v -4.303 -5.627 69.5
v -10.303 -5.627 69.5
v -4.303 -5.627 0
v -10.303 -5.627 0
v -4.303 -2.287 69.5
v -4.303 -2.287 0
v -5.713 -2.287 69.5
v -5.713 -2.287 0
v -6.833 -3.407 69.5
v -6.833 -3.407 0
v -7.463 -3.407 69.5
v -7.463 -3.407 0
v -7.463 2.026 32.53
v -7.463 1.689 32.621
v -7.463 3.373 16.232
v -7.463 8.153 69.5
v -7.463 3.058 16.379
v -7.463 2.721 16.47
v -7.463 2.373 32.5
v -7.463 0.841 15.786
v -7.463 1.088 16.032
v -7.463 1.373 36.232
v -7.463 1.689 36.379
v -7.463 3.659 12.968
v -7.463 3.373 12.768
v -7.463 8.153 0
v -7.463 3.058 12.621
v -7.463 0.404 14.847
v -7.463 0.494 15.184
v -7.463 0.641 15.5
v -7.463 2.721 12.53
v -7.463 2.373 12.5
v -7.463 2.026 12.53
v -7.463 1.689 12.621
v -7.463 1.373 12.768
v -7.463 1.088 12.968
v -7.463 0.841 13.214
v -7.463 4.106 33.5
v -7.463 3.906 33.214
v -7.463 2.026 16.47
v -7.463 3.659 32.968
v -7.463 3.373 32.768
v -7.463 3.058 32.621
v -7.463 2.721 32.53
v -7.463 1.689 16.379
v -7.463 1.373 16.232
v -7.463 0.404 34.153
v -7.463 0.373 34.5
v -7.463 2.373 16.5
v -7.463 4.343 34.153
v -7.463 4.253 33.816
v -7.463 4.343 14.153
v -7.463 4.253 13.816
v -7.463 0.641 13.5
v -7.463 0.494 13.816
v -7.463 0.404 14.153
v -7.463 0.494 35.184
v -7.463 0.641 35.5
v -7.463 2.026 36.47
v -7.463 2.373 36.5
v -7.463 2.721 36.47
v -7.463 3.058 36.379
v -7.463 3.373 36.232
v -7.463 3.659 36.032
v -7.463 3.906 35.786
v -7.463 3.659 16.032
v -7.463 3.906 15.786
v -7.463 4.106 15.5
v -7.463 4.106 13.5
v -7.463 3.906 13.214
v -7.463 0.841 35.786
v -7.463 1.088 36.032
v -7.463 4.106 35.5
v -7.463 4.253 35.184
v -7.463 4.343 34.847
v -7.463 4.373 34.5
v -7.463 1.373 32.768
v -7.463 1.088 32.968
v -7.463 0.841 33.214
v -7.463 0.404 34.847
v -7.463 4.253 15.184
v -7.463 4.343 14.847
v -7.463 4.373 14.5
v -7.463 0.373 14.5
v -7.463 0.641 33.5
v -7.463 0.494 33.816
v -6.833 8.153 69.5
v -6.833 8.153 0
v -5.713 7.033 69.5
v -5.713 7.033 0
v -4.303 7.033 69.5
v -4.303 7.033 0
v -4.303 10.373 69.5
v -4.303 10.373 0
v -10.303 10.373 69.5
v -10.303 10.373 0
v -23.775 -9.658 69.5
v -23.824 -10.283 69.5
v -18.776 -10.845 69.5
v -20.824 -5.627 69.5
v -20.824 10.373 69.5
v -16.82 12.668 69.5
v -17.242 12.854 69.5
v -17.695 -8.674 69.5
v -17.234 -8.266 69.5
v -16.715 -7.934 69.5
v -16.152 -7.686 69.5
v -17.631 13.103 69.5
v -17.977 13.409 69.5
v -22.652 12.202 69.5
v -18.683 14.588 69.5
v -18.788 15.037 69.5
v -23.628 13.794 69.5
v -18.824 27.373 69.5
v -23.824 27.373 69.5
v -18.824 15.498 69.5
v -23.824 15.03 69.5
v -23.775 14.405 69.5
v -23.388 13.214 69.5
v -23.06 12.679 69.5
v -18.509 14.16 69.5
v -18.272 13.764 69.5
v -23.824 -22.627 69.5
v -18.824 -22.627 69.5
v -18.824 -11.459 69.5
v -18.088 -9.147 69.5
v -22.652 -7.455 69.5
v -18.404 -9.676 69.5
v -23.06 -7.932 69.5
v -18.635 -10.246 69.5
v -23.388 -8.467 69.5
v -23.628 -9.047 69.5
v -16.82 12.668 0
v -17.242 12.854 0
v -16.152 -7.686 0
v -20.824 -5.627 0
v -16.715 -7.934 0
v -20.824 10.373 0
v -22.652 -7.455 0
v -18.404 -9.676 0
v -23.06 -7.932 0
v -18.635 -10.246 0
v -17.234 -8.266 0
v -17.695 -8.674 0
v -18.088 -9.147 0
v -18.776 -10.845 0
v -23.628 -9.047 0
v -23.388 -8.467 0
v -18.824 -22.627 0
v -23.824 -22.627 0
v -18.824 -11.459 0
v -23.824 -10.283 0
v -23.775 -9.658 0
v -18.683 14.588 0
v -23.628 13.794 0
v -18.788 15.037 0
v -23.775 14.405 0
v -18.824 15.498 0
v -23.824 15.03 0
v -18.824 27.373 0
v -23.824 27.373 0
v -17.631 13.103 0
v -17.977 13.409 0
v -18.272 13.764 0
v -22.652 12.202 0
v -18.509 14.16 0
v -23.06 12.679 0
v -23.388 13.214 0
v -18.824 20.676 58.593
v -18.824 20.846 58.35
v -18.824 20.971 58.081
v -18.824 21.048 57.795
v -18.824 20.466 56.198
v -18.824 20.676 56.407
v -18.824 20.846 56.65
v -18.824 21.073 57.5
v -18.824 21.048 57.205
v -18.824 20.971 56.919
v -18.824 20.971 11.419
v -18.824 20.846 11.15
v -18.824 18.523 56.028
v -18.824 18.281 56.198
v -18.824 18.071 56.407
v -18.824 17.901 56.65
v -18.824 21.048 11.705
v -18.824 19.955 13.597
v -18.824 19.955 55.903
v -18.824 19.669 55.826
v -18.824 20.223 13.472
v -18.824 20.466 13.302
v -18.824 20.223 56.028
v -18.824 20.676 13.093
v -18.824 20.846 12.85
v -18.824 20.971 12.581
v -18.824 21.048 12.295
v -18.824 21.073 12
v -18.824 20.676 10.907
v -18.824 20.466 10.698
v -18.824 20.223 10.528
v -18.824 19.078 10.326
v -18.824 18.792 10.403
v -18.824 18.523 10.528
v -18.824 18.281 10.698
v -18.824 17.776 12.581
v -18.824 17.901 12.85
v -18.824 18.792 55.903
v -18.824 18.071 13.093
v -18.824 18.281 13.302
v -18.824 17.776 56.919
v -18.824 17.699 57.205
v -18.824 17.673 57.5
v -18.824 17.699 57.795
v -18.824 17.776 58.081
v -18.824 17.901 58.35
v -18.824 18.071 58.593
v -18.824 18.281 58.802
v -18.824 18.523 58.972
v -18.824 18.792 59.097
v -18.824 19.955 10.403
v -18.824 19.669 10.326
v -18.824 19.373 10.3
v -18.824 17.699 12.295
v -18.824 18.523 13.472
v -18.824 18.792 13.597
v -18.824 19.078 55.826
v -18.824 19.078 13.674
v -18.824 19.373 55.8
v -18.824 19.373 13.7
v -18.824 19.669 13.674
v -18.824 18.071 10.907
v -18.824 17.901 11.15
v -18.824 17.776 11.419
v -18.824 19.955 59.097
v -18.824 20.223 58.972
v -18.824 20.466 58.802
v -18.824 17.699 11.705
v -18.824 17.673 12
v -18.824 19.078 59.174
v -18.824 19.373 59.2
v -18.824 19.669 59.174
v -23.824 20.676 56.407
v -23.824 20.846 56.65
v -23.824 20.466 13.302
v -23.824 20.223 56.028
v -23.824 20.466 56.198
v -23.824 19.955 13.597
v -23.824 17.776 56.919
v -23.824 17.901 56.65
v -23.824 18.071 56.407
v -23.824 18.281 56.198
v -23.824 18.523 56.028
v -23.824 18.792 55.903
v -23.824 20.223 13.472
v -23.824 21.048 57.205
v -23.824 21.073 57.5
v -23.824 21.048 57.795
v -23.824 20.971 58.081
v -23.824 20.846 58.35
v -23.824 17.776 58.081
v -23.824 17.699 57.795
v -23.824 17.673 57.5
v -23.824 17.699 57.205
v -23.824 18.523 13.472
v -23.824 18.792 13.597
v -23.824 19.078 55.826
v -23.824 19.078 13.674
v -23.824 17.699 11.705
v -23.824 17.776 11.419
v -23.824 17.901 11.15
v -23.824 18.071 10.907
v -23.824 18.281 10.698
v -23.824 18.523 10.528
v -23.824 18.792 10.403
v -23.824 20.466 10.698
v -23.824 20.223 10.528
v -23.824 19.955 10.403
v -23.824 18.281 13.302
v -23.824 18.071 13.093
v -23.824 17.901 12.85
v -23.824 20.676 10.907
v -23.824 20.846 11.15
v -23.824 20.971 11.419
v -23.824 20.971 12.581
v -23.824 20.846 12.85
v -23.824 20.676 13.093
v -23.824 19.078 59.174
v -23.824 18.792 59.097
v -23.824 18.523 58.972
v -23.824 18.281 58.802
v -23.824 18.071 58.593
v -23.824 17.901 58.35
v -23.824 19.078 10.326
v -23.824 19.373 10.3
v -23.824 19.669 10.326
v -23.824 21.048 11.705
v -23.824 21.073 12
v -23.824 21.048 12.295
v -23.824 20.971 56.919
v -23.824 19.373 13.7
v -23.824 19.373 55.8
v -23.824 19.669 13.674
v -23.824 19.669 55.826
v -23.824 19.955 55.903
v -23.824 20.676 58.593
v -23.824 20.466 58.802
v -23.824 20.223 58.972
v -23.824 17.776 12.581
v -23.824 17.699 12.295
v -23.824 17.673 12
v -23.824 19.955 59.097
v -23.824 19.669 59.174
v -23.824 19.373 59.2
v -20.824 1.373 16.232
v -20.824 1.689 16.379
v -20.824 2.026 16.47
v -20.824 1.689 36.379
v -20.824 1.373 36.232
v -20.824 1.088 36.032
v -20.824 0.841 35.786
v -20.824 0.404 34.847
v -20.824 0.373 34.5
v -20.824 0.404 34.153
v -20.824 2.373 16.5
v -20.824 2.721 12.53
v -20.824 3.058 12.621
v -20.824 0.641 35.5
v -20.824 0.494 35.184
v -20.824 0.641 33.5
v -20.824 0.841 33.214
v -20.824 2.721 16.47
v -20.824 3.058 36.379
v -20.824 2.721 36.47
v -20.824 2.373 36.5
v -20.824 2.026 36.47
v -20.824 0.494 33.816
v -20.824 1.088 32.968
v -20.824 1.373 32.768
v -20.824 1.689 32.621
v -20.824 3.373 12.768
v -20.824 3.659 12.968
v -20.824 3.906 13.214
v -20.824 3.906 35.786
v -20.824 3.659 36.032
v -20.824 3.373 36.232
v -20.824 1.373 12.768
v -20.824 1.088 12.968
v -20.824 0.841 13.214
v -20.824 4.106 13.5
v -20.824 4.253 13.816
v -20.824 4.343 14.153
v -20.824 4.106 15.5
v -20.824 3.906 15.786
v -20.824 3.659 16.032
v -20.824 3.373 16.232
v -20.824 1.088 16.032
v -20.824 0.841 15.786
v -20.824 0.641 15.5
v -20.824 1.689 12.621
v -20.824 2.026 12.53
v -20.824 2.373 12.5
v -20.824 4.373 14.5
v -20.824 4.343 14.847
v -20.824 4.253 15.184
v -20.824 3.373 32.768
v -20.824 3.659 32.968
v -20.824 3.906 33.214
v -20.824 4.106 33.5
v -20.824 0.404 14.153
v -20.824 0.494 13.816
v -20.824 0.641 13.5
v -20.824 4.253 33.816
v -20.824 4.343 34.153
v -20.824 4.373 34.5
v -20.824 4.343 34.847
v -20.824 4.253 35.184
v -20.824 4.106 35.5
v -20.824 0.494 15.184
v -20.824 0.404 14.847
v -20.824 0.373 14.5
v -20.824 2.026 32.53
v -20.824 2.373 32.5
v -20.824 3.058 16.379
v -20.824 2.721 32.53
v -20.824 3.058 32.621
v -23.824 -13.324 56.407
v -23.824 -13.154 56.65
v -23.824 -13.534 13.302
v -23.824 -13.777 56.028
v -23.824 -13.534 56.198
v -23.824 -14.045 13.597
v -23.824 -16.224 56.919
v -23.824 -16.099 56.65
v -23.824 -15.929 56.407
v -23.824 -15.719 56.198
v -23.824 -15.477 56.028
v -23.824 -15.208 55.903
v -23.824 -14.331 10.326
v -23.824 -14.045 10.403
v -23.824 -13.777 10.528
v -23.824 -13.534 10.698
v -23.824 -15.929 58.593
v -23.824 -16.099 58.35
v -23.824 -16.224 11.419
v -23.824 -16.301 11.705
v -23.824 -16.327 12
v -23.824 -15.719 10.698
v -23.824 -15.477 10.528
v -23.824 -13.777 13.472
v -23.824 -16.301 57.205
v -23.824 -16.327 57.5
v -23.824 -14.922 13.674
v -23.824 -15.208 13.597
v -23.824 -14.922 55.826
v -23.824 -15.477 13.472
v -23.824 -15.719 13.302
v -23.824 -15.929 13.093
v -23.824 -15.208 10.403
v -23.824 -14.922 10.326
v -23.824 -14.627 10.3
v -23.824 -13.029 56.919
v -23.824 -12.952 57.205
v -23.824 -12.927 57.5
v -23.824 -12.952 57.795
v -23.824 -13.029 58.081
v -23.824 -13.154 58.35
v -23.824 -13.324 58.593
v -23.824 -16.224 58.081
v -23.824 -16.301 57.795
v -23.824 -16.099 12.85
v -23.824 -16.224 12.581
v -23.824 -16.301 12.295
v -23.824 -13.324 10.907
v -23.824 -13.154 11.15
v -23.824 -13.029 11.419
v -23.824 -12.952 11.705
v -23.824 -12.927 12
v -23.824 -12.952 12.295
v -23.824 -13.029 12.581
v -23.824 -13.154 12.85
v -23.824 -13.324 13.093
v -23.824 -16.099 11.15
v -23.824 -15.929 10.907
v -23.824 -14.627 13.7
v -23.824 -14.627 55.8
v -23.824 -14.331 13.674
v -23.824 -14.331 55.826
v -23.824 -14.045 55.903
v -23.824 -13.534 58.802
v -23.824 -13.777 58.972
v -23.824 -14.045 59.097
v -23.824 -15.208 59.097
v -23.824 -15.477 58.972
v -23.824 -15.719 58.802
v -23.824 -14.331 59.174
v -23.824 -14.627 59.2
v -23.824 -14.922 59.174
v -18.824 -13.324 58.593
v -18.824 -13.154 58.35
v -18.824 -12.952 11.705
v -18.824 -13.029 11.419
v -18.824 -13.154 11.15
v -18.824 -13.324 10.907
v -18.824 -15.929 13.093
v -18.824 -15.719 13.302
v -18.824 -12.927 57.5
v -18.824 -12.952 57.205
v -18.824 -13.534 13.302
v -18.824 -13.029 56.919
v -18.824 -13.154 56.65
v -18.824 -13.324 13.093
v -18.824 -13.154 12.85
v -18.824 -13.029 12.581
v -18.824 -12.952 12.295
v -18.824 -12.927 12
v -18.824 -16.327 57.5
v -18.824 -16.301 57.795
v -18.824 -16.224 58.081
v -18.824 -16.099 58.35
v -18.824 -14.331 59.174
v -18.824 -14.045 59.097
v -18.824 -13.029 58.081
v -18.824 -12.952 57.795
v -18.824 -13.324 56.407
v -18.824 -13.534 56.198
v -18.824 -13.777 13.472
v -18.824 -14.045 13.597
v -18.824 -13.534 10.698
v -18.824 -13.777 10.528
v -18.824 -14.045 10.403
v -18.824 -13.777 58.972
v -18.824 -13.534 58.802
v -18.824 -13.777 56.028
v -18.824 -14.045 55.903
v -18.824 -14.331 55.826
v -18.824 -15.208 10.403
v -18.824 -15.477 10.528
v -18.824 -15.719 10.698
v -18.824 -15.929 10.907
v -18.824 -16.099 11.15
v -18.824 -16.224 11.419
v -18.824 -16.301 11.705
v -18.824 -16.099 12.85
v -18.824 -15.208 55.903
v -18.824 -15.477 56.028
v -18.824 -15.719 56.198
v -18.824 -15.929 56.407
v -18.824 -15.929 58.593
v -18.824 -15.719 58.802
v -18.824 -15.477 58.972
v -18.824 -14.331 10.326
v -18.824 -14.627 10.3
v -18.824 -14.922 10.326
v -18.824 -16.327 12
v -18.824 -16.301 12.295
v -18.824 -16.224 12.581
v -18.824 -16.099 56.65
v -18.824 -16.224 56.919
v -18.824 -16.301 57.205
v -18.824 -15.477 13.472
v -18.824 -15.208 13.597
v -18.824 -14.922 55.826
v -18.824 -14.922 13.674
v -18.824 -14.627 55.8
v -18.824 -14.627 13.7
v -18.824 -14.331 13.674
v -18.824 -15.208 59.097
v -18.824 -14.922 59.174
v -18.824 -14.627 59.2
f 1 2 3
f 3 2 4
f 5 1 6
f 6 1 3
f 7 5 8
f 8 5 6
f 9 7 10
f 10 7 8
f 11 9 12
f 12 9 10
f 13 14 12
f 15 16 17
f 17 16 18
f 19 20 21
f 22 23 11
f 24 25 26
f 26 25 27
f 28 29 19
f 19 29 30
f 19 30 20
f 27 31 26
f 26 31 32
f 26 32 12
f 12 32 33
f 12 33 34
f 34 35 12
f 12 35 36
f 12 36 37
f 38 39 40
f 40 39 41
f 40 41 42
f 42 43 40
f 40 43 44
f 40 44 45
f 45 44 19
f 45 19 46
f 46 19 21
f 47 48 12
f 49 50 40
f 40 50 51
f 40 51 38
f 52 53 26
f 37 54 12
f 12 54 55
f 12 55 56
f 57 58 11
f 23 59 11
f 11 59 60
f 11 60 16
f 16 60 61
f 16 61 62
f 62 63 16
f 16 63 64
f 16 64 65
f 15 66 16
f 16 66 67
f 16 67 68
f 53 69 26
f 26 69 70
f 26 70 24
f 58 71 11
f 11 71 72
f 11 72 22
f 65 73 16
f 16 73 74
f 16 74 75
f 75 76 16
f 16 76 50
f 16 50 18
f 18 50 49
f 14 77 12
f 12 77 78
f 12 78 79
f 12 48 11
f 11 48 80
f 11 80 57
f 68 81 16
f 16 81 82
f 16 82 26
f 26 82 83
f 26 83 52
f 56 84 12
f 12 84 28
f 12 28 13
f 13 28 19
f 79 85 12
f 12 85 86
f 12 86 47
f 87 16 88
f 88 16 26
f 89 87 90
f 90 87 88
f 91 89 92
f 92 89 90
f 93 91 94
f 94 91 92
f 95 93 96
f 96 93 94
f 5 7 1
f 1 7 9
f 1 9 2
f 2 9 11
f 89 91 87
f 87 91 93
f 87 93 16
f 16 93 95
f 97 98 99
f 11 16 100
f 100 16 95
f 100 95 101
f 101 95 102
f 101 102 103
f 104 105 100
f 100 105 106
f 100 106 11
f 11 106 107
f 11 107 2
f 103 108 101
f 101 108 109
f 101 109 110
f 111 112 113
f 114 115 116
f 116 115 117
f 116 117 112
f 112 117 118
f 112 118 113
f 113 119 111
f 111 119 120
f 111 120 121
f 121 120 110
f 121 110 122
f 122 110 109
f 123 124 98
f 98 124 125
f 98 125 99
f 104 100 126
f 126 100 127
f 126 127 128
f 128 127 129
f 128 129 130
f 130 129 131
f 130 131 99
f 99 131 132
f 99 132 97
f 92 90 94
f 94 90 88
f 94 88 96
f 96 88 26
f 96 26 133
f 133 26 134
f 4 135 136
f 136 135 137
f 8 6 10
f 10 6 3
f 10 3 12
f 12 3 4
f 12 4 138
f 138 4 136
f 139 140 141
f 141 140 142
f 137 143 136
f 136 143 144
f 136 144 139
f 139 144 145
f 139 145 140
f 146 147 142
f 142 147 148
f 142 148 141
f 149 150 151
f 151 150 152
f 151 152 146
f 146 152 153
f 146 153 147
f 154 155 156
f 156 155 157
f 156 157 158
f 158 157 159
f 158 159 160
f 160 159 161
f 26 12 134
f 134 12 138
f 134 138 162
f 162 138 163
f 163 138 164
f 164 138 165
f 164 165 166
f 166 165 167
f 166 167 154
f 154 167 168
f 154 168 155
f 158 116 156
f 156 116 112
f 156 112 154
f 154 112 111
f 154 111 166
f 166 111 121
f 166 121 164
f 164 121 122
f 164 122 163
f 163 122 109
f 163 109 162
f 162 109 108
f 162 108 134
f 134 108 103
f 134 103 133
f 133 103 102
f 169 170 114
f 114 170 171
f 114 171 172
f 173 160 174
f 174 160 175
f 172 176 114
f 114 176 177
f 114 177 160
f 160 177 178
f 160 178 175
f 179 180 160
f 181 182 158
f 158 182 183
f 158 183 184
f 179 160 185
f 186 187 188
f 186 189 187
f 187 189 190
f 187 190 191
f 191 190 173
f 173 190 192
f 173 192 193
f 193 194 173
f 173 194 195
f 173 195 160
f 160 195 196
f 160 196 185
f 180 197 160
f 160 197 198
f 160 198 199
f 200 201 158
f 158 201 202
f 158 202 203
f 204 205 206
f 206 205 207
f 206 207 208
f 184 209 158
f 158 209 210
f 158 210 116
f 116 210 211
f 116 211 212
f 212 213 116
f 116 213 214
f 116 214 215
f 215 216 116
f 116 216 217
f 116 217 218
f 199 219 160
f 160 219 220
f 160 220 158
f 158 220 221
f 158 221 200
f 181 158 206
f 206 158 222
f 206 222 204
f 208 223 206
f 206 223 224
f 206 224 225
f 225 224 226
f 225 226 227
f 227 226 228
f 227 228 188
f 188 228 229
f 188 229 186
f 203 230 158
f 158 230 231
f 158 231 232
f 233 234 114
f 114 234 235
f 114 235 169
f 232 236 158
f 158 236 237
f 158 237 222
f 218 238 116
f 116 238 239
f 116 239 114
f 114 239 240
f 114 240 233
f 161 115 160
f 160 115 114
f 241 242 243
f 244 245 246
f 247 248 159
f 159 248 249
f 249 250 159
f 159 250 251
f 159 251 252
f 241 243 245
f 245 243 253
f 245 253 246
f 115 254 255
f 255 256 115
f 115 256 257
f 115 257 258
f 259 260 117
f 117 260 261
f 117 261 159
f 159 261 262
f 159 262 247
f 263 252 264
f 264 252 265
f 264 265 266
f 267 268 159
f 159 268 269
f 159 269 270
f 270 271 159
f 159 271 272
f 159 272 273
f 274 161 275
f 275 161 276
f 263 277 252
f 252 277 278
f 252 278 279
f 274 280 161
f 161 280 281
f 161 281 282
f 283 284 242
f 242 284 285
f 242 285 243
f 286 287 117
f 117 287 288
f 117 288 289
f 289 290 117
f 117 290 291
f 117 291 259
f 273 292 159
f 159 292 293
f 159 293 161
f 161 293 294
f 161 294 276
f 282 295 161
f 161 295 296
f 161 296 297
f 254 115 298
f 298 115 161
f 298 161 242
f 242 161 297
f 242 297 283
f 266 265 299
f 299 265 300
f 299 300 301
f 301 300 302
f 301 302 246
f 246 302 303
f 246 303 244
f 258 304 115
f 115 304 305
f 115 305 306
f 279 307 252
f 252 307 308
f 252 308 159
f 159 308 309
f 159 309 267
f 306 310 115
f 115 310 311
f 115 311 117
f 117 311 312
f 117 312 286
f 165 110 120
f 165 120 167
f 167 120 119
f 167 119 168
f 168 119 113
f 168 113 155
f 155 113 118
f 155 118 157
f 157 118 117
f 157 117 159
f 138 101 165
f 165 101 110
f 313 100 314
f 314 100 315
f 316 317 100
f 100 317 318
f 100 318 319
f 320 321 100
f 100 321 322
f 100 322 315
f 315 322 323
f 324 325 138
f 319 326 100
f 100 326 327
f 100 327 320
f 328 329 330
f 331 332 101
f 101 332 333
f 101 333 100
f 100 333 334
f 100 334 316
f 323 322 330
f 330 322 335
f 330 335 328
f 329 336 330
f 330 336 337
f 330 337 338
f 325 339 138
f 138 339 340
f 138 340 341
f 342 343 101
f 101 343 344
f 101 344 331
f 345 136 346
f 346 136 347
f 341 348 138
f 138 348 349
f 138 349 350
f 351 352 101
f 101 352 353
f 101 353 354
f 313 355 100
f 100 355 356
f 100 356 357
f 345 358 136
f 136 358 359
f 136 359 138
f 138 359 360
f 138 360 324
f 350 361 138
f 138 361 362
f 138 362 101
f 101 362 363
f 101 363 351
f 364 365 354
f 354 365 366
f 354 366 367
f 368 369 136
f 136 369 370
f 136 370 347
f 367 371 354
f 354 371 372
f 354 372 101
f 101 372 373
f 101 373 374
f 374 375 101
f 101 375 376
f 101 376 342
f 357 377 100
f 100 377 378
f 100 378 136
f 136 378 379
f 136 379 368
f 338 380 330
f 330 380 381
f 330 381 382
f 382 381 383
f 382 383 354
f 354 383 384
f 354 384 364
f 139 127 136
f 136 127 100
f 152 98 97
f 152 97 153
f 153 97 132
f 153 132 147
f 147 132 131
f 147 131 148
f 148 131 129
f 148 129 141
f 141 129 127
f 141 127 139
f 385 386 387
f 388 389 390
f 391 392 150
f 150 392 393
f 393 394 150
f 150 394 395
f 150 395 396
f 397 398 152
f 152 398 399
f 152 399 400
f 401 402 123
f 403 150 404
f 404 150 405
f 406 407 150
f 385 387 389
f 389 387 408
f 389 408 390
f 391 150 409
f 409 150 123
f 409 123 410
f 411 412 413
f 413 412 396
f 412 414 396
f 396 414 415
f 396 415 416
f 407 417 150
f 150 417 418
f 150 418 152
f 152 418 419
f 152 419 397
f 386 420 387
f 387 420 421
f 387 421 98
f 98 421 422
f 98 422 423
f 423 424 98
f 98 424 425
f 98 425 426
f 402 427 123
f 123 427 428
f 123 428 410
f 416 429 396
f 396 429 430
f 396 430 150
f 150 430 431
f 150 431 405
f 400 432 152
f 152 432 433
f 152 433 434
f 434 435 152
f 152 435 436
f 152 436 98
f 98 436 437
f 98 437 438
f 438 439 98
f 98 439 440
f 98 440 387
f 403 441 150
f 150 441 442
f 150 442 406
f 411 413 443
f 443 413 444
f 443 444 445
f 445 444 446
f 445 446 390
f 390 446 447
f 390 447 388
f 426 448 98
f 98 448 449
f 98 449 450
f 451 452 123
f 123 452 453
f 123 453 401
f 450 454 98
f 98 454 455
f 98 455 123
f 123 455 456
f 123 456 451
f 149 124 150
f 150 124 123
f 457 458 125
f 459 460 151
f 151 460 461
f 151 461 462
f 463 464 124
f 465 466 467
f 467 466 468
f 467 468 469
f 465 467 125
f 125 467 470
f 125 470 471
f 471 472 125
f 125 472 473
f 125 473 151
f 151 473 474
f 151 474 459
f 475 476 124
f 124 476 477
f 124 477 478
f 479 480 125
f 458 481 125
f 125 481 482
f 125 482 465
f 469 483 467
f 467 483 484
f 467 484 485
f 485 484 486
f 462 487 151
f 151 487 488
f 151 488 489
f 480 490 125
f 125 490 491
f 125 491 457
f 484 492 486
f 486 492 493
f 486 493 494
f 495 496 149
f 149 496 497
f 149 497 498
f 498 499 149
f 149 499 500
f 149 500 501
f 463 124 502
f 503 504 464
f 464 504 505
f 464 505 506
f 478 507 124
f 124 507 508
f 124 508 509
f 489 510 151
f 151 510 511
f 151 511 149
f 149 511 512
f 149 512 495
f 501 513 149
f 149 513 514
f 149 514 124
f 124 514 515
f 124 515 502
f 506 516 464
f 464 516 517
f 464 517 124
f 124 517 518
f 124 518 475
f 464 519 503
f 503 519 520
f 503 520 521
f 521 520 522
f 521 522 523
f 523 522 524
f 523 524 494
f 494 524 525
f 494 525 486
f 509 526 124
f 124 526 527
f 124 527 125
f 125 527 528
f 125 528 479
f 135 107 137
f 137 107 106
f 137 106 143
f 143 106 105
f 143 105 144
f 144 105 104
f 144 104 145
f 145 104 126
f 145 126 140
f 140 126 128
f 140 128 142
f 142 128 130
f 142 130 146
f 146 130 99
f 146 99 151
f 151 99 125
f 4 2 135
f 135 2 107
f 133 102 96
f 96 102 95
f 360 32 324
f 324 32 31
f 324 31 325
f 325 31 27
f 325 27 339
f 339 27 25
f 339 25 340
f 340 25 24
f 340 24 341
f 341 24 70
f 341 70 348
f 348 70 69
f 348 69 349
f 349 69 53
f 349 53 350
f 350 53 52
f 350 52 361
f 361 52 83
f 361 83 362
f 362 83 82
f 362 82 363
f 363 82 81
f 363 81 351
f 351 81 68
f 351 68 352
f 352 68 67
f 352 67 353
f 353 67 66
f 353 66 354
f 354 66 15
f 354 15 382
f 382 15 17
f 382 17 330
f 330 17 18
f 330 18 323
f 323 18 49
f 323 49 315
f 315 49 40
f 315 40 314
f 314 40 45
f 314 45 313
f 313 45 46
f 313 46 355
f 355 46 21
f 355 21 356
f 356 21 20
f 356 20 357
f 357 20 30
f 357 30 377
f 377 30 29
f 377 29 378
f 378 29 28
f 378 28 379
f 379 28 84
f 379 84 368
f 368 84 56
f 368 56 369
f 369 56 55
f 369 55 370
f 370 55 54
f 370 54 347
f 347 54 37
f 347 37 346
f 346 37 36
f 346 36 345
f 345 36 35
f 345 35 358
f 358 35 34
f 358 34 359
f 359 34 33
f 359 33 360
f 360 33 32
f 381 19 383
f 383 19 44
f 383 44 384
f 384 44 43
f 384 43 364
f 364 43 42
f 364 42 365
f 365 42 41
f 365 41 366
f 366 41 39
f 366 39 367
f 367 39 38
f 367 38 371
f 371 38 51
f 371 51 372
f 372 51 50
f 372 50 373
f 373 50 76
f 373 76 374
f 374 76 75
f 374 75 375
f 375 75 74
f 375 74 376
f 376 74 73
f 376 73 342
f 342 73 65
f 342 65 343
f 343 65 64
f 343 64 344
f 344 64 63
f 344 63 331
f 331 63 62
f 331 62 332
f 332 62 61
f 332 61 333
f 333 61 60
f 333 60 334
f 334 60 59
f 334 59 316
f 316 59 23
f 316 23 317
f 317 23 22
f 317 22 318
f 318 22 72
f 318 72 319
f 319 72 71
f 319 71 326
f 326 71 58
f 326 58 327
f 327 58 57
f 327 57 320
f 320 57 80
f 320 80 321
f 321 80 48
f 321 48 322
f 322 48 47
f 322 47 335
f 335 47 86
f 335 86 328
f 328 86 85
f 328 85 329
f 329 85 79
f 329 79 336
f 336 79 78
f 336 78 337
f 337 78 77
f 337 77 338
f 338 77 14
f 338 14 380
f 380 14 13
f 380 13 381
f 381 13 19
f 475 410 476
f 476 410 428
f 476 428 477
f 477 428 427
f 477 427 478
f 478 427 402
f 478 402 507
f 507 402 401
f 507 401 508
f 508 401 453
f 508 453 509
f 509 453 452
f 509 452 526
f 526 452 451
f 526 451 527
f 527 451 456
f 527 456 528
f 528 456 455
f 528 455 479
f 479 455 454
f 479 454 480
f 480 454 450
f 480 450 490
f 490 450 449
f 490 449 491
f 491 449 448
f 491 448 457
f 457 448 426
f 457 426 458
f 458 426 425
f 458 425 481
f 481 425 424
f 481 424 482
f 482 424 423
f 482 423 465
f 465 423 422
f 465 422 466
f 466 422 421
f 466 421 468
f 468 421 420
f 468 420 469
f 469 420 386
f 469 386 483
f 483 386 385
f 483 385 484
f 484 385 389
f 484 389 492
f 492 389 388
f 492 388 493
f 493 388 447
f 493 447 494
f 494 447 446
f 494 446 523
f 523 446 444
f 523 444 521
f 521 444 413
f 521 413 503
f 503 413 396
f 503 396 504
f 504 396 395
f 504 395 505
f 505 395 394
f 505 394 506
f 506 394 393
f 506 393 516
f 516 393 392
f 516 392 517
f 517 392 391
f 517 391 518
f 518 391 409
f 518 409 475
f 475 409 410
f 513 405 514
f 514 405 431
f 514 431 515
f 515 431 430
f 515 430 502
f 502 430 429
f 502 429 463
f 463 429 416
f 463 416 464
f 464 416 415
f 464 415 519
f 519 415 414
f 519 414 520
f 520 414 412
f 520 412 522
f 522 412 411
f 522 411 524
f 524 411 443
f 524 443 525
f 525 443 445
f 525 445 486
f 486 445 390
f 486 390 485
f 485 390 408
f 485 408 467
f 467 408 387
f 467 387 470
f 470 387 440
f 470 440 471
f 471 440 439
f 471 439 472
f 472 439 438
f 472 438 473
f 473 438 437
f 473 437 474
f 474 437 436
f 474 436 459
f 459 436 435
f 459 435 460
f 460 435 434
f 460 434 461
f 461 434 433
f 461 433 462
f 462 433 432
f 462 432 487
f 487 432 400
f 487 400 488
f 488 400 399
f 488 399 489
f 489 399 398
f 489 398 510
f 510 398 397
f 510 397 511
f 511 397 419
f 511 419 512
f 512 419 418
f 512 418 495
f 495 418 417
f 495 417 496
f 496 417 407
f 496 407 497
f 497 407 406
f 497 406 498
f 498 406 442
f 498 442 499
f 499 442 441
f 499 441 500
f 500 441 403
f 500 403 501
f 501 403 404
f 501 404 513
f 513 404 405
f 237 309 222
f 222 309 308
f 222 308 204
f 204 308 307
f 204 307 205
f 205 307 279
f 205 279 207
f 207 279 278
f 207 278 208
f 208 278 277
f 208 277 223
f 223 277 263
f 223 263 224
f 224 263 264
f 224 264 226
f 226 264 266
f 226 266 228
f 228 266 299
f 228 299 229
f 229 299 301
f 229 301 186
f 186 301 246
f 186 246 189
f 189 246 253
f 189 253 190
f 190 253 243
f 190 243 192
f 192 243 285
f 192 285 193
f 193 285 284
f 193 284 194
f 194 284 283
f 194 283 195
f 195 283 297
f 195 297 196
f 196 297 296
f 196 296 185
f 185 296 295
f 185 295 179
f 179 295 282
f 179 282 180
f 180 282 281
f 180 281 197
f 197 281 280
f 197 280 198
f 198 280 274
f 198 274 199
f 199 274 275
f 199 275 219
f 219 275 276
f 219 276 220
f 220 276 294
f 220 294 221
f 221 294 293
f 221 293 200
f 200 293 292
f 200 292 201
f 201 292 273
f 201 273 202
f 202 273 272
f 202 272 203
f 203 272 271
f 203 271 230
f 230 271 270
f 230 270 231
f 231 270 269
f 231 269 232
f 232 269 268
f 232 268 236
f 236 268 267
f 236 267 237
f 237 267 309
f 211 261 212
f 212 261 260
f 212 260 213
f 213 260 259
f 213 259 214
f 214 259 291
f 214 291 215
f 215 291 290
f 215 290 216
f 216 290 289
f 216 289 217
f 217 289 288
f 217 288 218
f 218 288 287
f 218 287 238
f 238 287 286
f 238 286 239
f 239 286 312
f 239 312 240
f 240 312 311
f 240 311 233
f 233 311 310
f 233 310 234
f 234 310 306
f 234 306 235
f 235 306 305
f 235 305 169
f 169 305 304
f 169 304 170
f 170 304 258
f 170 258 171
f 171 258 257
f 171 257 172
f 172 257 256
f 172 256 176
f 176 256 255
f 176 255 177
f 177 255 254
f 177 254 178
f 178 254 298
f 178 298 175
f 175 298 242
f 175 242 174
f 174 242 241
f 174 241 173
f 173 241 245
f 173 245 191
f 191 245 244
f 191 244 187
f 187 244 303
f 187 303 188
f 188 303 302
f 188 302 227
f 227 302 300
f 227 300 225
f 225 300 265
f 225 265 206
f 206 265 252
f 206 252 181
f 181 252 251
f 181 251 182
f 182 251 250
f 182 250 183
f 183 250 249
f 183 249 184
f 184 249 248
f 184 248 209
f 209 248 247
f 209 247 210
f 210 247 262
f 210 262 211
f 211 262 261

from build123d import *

# Parameters (mm, degrees)
BOSS_EXTRUDE2_DEPTH     = 69.5
BOSS_EXTRUDE3_DEPTH     = 69.5
CUT_EXTRUDE1_DEPTH      = 77.467274154
CUT_EXTRUDE1_DEPTH_BACK = 77.467274154
SKETCH7_R               = 2
CUT_EXTRUDE2_DEPTH      = 78.205129928
CUT_EXTRUDE2_DEPTH_BACK = 78.205129928
SKETCH8_R               = 1.7


with BuildPart() as part:
    # Sketch4 → Boss-Extrude2 (new body)
    with BuildSketch(Plane.XY):
        Polygon((-4.302602112, 10.373468411), (-10.302602112, 10.373468411), (-10.302602112, -5.626531589), (-4.302602112, -5.626531589), (-4.302602112, -2.286531589), (-5.712602112, -2.286531589), (-6.832602112, -3.406531589), (-7.462602112, -3.406531589), (-7.462602112, 8.153468411), (-6.832602112, 8.153468411), (-5.712602112, 7.033468411), (-4.302602112, 7.033468411), align=None)
    extrude(amount=BOSS_EXTRUDE2_DEPTH)

    # Sketch6 → Boss-Extrude3 (add)
    with BuildSketch(Plane.XY.offset(69.5)):
        with BuildLine():
            Line((-18.82375255, 27.373468411), (-23.82375255, 27.373468411))
            Line((-23.82375255, 27.373468411), (-23.82375255, 15.03032266))
            ThreePointArc((-23.82375255, 15.03032266), (-23.51927068, 13.499588931), (-22.652179675, 12.201895535))
            Line((-22.652179675, 12.201895535), (-20.82375255, 10.373468411))
            Line((-20.82375255, 10.373468411), (-20.82375255, -5.626531589))
            Line((-20.82375255, -5.626531589), (-22.652179675, -7.454958714))
            ThreePointArc((-22.652179675, -7.454958714), (-23.51927068, -8.752652109), (-23.82375255, -10.283385839))
            Line((-23.82375255, -10.283385839), (-23.82375255, -22.626531589))
            Line((-23.82375255, -22.626531589), (-18.82375255, -22.626531589))
            Line((-18.82375255, -22.626531589), (-18.82375255, -11.458931103))
            ThreePointArc((-18.82375255, -11.458931103), (-18.088209901, -9.14736925), (-16.152093449, -7.685933561))
            Line((-16.152093449, -7.685933561), (-10.302602112, -5.626531589))
            Line((-10.302602112, -5.626531589), (-10.302602112, 10.373468411))
            Line((-10.302602112, 10.373468411), (-16.820008224, 12.668019889))
            ThreePointArc((-16.820008224, 12.668019889), (-18.272095564, 13.764096656), (-18.82375255, 15.497768046))
            Line((-18.82375255, 15.497768046), (-18.82375255, 27.373468411))
        make_face()
    extrude(amount=-BOSS_EXTRUDE3_DEPTH)

    # Sketch7 → Cut-Extrude1 (cut, two sides: drawn at the far end of the back side and taken through both)
    with BuildSketch(Plane(origin=(-7.462602112, 0, 0), x_dir=(0, 0, -1), z_dir=(1, 0, 0)).offset(-CUT_EXTRUDE1_DEPTH_BACK)):
        with Locations(Location((-34.5, 2.373468411, 0), (0, 0, 180))):
            Circle(SKETCH7_R)
        with Locations(Location((-14.5, 2.373468411, 0), (0, 0, 180))):
            Circle(SKETCH7_R)
    extrude(amount=CUT_EXTRUDE1_DEPTH + CUT_EXTRUDE1_DEPTH_BACK, mode=Mode.SUBTRACT)

    # Sketch8 → Cut-Extrude2 (cut, two sides: drawn at the far end of the back side and taken through both)
    with BuildSketch(Plane.ZY.offset(23.82375255).offset(-CUT_EXTRUDE2_DEPTH_BACK)):
        with Locations(Location((12, 19.373468411, 0), (0, 0, 270))):
            Circle(SKETCH8_R)
        with Locations(Location((57.5, 19.373468411, 0), (0, 0, 270))):
            Circle(SKETCH8_R)
        with Locations(Location((57.5, -14.626531589, 0), (0, 0, 270))):
            Circle(SKETCH8_R)
        with Locations(Location((12, -14.626531589, 0), (0, 0, 270))):
            Circle(SKETCH8_R)
    extrude(amount=CUT_EXTRUDE2_DEPTH + CUT_EXTRUDE2_DEPTH_BACK, mode=Mode.SUBTRACT)


solid = part.part
